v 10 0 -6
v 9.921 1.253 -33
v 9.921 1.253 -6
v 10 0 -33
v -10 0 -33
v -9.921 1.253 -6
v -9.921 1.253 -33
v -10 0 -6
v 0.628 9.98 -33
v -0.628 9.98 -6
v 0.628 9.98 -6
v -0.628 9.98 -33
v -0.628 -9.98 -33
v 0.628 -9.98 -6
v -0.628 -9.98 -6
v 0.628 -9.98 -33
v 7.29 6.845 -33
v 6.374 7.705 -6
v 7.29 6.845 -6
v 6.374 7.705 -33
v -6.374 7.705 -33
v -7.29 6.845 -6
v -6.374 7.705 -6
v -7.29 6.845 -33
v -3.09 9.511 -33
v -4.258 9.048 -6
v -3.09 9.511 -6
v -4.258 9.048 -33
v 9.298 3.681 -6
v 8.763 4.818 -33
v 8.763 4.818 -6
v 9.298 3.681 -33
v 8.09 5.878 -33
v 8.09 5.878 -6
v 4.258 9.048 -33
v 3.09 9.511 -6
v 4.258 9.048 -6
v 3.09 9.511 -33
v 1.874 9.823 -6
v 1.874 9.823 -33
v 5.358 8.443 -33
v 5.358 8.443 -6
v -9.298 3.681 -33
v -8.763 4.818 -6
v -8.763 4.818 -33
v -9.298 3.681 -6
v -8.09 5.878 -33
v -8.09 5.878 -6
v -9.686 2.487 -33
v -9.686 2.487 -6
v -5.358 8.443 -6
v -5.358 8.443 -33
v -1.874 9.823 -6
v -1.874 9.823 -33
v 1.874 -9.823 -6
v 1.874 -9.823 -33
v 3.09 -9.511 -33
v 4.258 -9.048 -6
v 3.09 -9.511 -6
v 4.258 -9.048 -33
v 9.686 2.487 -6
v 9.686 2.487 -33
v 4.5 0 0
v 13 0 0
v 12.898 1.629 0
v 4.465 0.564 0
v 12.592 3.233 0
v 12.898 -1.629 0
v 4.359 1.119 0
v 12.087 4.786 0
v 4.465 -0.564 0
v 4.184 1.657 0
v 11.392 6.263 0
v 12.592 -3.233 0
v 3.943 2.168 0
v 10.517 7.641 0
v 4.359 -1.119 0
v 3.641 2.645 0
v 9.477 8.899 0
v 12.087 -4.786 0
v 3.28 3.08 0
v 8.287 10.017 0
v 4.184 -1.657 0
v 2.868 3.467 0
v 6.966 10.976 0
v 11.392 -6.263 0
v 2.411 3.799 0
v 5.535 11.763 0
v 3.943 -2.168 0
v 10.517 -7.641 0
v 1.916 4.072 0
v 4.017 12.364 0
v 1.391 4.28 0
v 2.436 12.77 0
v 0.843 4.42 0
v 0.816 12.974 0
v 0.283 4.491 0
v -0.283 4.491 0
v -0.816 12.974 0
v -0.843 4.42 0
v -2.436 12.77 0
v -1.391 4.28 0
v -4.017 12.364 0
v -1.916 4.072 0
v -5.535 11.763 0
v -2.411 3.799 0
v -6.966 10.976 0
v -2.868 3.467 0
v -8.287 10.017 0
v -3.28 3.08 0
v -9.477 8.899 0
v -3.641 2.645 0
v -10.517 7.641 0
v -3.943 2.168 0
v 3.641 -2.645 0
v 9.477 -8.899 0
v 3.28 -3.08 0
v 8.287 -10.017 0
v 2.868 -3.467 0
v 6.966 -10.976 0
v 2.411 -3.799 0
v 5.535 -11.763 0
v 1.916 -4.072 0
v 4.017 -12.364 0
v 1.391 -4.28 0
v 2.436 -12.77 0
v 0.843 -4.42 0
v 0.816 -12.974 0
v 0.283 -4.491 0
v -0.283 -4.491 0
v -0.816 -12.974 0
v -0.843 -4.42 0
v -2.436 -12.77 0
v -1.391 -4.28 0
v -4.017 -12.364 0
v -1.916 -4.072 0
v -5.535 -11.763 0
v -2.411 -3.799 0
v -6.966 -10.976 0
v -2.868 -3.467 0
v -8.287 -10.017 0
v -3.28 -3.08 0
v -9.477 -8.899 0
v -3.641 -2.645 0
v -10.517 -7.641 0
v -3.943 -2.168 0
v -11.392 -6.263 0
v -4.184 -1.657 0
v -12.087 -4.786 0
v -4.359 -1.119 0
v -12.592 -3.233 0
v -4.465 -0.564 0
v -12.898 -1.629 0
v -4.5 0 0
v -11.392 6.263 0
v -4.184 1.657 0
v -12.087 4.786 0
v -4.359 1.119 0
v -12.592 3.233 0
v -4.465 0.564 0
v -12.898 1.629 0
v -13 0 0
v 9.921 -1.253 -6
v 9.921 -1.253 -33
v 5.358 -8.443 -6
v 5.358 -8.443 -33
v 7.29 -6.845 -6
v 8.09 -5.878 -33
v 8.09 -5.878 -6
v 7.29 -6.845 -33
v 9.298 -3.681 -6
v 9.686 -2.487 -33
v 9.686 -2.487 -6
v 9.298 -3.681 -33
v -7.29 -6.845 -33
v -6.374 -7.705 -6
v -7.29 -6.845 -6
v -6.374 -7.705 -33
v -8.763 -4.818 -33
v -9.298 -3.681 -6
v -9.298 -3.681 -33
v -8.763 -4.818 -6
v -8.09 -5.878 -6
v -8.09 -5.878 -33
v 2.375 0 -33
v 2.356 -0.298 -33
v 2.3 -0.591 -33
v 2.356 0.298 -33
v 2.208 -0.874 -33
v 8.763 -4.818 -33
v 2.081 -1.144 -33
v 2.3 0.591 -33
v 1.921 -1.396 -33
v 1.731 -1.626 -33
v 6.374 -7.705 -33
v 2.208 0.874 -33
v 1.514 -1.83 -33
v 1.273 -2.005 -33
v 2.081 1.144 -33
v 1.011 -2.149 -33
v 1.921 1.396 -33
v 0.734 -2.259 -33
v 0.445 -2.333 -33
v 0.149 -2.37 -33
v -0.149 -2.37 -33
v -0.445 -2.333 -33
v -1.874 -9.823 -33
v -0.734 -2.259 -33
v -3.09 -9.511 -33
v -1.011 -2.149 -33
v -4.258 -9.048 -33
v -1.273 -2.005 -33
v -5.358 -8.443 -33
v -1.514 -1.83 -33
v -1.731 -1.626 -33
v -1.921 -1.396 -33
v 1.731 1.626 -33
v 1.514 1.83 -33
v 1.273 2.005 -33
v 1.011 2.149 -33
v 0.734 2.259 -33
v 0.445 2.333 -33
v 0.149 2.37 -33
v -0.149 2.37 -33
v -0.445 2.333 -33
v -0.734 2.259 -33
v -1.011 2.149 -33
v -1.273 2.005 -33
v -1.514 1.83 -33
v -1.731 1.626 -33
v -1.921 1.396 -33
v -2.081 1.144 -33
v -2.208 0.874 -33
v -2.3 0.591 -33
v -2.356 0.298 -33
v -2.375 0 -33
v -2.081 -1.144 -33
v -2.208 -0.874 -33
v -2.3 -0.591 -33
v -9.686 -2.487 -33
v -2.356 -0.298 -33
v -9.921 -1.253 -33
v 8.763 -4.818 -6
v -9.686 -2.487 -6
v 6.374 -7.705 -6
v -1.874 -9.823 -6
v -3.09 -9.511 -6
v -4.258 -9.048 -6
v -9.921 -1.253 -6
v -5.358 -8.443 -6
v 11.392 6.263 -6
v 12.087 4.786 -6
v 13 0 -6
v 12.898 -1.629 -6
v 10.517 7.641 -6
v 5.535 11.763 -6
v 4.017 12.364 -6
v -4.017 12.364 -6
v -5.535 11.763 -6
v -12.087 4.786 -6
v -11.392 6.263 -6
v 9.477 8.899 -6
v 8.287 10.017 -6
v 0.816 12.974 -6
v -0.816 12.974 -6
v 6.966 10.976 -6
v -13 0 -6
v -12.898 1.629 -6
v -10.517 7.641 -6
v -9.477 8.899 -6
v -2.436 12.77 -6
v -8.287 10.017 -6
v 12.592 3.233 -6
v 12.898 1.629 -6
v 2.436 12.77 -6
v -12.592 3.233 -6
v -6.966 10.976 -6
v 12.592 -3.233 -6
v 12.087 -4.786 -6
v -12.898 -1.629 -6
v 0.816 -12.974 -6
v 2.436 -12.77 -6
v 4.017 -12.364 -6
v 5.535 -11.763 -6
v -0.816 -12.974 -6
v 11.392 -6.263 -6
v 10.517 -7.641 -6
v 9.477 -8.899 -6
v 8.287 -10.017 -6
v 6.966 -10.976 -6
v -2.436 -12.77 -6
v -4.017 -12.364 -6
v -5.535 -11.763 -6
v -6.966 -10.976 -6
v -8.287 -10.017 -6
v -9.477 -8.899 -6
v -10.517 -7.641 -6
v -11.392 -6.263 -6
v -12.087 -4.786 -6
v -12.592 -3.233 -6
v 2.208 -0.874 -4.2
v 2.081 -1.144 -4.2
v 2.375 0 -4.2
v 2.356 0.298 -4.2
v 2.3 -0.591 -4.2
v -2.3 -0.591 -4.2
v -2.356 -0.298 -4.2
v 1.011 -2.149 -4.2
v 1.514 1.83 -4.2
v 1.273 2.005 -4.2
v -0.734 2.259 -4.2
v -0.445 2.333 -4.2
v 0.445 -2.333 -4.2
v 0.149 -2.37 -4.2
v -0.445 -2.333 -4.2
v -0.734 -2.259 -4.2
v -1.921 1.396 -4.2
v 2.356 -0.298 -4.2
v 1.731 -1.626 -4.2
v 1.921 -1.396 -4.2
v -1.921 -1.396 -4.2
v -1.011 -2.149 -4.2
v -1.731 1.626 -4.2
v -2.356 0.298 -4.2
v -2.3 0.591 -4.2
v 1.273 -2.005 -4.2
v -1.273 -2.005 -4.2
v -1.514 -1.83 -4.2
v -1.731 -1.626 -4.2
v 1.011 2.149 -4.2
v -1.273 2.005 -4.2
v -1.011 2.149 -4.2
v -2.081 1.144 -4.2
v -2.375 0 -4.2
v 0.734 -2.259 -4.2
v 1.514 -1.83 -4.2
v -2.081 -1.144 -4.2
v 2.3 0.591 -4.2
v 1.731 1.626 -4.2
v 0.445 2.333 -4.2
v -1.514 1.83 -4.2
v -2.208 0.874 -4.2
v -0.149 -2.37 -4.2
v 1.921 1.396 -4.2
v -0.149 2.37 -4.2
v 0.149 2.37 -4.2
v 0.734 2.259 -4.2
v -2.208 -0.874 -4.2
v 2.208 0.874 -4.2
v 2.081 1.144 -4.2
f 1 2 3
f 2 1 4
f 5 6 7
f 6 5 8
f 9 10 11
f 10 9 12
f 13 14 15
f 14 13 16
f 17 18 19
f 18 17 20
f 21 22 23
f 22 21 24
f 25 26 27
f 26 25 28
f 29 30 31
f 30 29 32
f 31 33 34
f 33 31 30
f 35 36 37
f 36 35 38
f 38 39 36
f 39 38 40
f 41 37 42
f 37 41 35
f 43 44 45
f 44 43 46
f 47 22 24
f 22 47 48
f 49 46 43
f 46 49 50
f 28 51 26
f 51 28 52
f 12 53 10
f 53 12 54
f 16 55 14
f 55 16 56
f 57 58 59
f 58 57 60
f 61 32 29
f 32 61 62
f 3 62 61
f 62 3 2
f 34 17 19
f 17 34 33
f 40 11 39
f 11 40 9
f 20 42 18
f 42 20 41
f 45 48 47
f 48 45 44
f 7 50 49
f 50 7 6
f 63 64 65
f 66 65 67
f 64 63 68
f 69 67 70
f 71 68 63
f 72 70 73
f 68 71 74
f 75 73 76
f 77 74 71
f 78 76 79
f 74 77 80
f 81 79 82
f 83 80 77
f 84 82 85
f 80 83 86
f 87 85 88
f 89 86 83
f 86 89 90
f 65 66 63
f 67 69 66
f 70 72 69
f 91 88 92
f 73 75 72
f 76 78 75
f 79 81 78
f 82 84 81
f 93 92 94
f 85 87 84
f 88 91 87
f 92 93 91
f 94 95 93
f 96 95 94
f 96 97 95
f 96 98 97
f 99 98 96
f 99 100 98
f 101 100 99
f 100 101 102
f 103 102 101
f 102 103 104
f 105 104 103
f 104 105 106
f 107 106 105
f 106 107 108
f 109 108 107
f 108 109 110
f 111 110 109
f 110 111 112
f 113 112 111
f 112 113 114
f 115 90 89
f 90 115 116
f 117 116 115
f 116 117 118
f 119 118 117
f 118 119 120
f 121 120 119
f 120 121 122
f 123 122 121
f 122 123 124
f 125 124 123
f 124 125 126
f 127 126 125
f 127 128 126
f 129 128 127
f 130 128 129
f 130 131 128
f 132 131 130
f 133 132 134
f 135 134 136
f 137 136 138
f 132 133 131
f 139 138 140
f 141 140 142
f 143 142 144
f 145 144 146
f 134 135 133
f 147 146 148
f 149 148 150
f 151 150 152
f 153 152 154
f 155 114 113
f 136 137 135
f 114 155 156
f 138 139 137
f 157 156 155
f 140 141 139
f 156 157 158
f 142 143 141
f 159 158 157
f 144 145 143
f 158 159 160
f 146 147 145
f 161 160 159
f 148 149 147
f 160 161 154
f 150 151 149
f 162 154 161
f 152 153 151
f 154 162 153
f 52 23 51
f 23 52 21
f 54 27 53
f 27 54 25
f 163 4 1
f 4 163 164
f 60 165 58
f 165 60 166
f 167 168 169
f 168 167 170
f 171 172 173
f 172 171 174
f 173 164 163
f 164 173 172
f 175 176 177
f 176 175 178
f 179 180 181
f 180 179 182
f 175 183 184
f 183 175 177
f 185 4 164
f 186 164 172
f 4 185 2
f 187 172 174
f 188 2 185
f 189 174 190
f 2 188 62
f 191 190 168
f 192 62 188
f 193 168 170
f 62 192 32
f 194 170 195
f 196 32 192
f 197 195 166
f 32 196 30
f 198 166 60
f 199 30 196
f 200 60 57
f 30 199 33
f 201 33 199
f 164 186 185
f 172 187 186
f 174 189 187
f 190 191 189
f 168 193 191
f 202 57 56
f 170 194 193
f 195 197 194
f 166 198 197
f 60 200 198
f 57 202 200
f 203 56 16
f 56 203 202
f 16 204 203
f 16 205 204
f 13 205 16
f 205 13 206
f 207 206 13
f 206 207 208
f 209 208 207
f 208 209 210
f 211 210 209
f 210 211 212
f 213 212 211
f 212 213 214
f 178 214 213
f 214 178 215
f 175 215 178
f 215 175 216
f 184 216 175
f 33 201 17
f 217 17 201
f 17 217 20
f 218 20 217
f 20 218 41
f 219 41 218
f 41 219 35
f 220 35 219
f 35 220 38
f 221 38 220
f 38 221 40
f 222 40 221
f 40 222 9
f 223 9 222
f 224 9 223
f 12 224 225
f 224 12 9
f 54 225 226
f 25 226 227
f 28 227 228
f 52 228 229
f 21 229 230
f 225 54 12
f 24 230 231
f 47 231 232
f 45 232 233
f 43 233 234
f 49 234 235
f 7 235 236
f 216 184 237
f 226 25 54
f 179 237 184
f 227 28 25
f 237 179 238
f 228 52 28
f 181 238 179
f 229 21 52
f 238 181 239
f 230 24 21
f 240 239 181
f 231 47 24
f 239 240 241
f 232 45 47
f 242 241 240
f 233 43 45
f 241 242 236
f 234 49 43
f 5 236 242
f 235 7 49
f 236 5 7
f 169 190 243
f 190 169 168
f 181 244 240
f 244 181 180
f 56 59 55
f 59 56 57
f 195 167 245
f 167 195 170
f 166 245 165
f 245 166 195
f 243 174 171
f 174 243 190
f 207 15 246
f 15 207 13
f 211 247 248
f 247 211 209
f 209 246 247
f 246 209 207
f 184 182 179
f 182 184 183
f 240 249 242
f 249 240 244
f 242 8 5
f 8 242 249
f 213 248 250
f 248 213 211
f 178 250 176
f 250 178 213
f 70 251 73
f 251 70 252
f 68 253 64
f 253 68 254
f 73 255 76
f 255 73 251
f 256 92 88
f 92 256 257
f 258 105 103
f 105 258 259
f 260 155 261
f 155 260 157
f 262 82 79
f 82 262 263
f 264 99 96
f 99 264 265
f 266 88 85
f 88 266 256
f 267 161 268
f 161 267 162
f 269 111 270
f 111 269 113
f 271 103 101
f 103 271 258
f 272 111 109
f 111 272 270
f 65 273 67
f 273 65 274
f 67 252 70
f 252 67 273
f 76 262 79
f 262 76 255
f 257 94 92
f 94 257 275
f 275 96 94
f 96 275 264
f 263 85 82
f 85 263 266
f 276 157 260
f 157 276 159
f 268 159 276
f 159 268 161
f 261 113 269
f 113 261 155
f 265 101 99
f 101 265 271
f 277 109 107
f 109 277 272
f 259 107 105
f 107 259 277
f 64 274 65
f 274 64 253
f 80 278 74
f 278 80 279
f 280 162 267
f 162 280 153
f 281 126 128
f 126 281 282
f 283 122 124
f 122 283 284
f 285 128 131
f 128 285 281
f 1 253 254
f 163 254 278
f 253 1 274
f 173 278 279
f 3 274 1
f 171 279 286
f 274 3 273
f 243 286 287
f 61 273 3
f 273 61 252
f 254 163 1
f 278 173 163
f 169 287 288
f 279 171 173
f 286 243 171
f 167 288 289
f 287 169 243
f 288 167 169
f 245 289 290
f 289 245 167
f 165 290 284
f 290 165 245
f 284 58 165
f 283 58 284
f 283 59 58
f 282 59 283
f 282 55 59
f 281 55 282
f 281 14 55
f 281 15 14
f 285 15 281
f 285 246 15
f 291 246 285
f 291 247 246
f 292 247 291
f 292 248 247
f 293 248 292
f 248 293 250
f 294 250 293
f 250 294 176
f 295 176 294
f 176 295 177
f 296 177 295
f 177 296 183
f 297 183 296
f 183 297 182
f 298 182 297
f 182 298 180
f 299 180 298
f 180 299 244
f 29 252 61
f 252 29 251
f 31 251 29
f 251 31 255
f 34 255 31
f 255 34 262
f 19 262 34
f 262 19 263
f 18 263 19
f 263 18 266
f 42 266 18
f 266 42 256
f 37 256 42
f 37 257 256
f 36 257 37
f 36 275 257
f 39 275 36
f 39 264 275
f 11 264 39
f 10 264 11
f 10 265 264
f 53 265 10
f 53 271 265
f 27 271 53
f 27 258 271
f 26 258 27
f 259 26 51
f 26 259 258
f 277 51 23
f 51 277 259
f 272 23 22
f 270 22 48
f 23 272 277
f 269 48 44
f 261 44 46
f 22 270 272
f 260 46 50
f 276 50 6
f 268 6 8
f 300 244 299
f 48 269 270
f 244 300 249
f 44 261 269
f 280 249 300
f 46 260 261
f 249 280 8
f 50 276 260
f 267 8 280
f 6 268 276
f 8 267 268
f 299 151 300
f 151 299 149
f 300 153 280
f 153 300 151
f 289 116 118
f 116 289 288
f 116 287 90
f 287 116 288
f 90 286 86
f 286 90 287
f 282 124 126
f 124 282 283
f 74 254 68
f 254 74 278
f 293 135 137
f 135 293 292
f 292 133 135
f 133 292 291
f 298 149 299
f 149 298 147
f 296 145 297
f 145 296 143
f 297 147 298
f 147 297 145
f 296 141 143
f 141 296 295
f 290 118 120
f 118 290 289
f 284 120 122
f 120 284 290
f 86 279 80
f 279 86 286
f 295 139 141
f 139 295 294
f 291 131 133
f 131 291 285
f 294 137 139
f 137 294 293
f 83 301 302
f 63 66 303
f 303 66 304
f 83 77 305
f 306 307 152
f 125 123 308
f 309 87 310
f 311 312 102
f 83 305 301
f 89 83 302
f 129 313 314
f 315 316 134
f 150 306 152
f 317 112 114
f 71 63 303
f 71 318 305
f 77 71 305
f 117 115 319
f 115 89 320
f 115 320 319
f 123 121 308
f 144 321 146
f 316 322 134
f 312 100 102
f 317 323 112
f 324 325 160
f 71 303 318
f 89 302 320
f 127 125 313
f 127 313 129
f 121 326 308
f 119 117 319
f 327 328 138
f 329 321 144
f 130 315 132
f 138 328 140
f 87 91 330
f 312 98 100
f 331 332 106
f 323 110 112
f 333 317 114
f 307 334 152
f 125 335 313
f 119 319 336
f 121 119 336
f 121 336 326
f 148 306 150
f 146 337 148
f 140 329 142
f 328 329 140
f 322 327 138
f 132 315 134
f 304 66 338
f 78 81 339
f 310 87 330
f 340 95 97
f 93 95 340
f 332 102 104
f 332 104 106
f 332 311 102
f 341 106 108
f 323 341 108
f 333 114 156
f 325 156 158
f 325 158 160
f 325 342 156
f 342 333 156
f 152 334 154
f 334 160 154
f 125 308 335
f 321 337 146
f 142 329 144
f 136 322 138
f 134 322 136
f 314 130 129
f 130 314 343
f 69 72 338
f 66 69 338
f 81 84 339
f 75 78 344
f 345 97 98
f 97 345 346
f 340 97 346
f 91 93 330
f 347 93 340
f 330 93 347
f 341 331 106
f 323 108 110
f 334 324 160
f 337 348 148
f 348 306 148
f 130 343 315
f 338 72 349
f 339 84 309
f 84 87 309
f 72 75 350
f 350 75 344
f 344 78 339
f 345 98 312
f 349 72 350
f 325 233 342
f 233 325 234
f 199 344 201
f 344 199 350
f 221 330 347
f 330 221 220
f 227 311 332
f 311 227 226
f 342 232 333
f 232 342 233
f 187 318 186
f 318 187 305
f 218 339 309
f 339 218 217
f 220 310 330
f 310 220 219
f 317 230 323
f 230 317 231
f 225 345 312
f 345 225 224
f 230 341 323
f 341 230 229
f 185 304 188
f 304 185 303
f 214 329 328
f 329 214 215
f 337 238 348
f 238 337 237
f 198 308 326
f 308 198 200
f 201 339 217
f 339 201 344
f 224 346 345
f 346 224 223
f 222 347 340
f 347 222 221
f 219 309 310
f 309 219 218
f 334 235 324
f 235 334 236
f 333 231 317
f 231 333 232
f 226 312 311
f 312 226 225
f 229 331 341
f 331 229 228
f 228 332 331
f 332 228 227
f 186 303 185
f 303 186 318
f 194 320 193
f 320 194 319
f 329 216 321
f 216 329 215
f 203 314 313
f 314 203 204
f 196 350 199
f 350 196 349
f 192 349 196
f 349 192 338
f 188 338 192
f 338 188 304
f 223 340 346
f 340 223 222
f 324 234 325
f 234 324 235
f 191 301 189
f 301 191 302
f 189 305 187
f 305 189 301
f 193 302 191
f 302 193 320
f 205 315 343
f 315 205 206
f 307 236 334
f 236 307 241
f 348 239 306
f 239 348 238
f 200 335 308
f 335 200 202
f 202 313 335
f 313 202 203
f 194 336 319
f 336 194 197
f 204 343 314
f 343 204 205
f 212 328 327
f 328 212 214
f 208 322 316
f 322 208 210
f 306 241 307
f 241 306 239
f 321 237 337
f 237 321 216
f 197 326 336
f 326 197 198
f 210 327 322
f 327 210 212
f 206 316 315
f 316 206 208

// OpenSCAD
$fn = 50;


difference() {
	union() {
		translate(v = [0, 0, -33.0000000000]) {
			cylinder(h = 33, r = 10.0000000000);
		}
		translate(v = [0, 0, -6.0000000000]) {
			cylinder(h = 6, r = 13.0000000000);
		}
	}
	union() {
		translate(v = [0, 0, 0]) {
			rotate(a = [0, 0, 0]) {
				difference() {
					union() {
						#translate(v = [0, 0, -33.0000000000]) {
							cylinder(h = 33, r = 2.2500000000);
						}
						#translate(v = [0, 0, -4.2000000000]) {
							cylinder(h = 4.2000000000, r = 10.0000000000, r1 = 2.3750000000, r2 = 4.5000000000);
						}
						#translate(v = [0, 0, -33.0000000000]) {
							cylinder(h = 33, r = 2.3750000000);
						}
						#translate(v = [0, 0, -33.0000000000]) {
							cylinder(h = 33, r = 2.2500000000);
						}
					}
					union();
				}
			}
		}
	}
}
